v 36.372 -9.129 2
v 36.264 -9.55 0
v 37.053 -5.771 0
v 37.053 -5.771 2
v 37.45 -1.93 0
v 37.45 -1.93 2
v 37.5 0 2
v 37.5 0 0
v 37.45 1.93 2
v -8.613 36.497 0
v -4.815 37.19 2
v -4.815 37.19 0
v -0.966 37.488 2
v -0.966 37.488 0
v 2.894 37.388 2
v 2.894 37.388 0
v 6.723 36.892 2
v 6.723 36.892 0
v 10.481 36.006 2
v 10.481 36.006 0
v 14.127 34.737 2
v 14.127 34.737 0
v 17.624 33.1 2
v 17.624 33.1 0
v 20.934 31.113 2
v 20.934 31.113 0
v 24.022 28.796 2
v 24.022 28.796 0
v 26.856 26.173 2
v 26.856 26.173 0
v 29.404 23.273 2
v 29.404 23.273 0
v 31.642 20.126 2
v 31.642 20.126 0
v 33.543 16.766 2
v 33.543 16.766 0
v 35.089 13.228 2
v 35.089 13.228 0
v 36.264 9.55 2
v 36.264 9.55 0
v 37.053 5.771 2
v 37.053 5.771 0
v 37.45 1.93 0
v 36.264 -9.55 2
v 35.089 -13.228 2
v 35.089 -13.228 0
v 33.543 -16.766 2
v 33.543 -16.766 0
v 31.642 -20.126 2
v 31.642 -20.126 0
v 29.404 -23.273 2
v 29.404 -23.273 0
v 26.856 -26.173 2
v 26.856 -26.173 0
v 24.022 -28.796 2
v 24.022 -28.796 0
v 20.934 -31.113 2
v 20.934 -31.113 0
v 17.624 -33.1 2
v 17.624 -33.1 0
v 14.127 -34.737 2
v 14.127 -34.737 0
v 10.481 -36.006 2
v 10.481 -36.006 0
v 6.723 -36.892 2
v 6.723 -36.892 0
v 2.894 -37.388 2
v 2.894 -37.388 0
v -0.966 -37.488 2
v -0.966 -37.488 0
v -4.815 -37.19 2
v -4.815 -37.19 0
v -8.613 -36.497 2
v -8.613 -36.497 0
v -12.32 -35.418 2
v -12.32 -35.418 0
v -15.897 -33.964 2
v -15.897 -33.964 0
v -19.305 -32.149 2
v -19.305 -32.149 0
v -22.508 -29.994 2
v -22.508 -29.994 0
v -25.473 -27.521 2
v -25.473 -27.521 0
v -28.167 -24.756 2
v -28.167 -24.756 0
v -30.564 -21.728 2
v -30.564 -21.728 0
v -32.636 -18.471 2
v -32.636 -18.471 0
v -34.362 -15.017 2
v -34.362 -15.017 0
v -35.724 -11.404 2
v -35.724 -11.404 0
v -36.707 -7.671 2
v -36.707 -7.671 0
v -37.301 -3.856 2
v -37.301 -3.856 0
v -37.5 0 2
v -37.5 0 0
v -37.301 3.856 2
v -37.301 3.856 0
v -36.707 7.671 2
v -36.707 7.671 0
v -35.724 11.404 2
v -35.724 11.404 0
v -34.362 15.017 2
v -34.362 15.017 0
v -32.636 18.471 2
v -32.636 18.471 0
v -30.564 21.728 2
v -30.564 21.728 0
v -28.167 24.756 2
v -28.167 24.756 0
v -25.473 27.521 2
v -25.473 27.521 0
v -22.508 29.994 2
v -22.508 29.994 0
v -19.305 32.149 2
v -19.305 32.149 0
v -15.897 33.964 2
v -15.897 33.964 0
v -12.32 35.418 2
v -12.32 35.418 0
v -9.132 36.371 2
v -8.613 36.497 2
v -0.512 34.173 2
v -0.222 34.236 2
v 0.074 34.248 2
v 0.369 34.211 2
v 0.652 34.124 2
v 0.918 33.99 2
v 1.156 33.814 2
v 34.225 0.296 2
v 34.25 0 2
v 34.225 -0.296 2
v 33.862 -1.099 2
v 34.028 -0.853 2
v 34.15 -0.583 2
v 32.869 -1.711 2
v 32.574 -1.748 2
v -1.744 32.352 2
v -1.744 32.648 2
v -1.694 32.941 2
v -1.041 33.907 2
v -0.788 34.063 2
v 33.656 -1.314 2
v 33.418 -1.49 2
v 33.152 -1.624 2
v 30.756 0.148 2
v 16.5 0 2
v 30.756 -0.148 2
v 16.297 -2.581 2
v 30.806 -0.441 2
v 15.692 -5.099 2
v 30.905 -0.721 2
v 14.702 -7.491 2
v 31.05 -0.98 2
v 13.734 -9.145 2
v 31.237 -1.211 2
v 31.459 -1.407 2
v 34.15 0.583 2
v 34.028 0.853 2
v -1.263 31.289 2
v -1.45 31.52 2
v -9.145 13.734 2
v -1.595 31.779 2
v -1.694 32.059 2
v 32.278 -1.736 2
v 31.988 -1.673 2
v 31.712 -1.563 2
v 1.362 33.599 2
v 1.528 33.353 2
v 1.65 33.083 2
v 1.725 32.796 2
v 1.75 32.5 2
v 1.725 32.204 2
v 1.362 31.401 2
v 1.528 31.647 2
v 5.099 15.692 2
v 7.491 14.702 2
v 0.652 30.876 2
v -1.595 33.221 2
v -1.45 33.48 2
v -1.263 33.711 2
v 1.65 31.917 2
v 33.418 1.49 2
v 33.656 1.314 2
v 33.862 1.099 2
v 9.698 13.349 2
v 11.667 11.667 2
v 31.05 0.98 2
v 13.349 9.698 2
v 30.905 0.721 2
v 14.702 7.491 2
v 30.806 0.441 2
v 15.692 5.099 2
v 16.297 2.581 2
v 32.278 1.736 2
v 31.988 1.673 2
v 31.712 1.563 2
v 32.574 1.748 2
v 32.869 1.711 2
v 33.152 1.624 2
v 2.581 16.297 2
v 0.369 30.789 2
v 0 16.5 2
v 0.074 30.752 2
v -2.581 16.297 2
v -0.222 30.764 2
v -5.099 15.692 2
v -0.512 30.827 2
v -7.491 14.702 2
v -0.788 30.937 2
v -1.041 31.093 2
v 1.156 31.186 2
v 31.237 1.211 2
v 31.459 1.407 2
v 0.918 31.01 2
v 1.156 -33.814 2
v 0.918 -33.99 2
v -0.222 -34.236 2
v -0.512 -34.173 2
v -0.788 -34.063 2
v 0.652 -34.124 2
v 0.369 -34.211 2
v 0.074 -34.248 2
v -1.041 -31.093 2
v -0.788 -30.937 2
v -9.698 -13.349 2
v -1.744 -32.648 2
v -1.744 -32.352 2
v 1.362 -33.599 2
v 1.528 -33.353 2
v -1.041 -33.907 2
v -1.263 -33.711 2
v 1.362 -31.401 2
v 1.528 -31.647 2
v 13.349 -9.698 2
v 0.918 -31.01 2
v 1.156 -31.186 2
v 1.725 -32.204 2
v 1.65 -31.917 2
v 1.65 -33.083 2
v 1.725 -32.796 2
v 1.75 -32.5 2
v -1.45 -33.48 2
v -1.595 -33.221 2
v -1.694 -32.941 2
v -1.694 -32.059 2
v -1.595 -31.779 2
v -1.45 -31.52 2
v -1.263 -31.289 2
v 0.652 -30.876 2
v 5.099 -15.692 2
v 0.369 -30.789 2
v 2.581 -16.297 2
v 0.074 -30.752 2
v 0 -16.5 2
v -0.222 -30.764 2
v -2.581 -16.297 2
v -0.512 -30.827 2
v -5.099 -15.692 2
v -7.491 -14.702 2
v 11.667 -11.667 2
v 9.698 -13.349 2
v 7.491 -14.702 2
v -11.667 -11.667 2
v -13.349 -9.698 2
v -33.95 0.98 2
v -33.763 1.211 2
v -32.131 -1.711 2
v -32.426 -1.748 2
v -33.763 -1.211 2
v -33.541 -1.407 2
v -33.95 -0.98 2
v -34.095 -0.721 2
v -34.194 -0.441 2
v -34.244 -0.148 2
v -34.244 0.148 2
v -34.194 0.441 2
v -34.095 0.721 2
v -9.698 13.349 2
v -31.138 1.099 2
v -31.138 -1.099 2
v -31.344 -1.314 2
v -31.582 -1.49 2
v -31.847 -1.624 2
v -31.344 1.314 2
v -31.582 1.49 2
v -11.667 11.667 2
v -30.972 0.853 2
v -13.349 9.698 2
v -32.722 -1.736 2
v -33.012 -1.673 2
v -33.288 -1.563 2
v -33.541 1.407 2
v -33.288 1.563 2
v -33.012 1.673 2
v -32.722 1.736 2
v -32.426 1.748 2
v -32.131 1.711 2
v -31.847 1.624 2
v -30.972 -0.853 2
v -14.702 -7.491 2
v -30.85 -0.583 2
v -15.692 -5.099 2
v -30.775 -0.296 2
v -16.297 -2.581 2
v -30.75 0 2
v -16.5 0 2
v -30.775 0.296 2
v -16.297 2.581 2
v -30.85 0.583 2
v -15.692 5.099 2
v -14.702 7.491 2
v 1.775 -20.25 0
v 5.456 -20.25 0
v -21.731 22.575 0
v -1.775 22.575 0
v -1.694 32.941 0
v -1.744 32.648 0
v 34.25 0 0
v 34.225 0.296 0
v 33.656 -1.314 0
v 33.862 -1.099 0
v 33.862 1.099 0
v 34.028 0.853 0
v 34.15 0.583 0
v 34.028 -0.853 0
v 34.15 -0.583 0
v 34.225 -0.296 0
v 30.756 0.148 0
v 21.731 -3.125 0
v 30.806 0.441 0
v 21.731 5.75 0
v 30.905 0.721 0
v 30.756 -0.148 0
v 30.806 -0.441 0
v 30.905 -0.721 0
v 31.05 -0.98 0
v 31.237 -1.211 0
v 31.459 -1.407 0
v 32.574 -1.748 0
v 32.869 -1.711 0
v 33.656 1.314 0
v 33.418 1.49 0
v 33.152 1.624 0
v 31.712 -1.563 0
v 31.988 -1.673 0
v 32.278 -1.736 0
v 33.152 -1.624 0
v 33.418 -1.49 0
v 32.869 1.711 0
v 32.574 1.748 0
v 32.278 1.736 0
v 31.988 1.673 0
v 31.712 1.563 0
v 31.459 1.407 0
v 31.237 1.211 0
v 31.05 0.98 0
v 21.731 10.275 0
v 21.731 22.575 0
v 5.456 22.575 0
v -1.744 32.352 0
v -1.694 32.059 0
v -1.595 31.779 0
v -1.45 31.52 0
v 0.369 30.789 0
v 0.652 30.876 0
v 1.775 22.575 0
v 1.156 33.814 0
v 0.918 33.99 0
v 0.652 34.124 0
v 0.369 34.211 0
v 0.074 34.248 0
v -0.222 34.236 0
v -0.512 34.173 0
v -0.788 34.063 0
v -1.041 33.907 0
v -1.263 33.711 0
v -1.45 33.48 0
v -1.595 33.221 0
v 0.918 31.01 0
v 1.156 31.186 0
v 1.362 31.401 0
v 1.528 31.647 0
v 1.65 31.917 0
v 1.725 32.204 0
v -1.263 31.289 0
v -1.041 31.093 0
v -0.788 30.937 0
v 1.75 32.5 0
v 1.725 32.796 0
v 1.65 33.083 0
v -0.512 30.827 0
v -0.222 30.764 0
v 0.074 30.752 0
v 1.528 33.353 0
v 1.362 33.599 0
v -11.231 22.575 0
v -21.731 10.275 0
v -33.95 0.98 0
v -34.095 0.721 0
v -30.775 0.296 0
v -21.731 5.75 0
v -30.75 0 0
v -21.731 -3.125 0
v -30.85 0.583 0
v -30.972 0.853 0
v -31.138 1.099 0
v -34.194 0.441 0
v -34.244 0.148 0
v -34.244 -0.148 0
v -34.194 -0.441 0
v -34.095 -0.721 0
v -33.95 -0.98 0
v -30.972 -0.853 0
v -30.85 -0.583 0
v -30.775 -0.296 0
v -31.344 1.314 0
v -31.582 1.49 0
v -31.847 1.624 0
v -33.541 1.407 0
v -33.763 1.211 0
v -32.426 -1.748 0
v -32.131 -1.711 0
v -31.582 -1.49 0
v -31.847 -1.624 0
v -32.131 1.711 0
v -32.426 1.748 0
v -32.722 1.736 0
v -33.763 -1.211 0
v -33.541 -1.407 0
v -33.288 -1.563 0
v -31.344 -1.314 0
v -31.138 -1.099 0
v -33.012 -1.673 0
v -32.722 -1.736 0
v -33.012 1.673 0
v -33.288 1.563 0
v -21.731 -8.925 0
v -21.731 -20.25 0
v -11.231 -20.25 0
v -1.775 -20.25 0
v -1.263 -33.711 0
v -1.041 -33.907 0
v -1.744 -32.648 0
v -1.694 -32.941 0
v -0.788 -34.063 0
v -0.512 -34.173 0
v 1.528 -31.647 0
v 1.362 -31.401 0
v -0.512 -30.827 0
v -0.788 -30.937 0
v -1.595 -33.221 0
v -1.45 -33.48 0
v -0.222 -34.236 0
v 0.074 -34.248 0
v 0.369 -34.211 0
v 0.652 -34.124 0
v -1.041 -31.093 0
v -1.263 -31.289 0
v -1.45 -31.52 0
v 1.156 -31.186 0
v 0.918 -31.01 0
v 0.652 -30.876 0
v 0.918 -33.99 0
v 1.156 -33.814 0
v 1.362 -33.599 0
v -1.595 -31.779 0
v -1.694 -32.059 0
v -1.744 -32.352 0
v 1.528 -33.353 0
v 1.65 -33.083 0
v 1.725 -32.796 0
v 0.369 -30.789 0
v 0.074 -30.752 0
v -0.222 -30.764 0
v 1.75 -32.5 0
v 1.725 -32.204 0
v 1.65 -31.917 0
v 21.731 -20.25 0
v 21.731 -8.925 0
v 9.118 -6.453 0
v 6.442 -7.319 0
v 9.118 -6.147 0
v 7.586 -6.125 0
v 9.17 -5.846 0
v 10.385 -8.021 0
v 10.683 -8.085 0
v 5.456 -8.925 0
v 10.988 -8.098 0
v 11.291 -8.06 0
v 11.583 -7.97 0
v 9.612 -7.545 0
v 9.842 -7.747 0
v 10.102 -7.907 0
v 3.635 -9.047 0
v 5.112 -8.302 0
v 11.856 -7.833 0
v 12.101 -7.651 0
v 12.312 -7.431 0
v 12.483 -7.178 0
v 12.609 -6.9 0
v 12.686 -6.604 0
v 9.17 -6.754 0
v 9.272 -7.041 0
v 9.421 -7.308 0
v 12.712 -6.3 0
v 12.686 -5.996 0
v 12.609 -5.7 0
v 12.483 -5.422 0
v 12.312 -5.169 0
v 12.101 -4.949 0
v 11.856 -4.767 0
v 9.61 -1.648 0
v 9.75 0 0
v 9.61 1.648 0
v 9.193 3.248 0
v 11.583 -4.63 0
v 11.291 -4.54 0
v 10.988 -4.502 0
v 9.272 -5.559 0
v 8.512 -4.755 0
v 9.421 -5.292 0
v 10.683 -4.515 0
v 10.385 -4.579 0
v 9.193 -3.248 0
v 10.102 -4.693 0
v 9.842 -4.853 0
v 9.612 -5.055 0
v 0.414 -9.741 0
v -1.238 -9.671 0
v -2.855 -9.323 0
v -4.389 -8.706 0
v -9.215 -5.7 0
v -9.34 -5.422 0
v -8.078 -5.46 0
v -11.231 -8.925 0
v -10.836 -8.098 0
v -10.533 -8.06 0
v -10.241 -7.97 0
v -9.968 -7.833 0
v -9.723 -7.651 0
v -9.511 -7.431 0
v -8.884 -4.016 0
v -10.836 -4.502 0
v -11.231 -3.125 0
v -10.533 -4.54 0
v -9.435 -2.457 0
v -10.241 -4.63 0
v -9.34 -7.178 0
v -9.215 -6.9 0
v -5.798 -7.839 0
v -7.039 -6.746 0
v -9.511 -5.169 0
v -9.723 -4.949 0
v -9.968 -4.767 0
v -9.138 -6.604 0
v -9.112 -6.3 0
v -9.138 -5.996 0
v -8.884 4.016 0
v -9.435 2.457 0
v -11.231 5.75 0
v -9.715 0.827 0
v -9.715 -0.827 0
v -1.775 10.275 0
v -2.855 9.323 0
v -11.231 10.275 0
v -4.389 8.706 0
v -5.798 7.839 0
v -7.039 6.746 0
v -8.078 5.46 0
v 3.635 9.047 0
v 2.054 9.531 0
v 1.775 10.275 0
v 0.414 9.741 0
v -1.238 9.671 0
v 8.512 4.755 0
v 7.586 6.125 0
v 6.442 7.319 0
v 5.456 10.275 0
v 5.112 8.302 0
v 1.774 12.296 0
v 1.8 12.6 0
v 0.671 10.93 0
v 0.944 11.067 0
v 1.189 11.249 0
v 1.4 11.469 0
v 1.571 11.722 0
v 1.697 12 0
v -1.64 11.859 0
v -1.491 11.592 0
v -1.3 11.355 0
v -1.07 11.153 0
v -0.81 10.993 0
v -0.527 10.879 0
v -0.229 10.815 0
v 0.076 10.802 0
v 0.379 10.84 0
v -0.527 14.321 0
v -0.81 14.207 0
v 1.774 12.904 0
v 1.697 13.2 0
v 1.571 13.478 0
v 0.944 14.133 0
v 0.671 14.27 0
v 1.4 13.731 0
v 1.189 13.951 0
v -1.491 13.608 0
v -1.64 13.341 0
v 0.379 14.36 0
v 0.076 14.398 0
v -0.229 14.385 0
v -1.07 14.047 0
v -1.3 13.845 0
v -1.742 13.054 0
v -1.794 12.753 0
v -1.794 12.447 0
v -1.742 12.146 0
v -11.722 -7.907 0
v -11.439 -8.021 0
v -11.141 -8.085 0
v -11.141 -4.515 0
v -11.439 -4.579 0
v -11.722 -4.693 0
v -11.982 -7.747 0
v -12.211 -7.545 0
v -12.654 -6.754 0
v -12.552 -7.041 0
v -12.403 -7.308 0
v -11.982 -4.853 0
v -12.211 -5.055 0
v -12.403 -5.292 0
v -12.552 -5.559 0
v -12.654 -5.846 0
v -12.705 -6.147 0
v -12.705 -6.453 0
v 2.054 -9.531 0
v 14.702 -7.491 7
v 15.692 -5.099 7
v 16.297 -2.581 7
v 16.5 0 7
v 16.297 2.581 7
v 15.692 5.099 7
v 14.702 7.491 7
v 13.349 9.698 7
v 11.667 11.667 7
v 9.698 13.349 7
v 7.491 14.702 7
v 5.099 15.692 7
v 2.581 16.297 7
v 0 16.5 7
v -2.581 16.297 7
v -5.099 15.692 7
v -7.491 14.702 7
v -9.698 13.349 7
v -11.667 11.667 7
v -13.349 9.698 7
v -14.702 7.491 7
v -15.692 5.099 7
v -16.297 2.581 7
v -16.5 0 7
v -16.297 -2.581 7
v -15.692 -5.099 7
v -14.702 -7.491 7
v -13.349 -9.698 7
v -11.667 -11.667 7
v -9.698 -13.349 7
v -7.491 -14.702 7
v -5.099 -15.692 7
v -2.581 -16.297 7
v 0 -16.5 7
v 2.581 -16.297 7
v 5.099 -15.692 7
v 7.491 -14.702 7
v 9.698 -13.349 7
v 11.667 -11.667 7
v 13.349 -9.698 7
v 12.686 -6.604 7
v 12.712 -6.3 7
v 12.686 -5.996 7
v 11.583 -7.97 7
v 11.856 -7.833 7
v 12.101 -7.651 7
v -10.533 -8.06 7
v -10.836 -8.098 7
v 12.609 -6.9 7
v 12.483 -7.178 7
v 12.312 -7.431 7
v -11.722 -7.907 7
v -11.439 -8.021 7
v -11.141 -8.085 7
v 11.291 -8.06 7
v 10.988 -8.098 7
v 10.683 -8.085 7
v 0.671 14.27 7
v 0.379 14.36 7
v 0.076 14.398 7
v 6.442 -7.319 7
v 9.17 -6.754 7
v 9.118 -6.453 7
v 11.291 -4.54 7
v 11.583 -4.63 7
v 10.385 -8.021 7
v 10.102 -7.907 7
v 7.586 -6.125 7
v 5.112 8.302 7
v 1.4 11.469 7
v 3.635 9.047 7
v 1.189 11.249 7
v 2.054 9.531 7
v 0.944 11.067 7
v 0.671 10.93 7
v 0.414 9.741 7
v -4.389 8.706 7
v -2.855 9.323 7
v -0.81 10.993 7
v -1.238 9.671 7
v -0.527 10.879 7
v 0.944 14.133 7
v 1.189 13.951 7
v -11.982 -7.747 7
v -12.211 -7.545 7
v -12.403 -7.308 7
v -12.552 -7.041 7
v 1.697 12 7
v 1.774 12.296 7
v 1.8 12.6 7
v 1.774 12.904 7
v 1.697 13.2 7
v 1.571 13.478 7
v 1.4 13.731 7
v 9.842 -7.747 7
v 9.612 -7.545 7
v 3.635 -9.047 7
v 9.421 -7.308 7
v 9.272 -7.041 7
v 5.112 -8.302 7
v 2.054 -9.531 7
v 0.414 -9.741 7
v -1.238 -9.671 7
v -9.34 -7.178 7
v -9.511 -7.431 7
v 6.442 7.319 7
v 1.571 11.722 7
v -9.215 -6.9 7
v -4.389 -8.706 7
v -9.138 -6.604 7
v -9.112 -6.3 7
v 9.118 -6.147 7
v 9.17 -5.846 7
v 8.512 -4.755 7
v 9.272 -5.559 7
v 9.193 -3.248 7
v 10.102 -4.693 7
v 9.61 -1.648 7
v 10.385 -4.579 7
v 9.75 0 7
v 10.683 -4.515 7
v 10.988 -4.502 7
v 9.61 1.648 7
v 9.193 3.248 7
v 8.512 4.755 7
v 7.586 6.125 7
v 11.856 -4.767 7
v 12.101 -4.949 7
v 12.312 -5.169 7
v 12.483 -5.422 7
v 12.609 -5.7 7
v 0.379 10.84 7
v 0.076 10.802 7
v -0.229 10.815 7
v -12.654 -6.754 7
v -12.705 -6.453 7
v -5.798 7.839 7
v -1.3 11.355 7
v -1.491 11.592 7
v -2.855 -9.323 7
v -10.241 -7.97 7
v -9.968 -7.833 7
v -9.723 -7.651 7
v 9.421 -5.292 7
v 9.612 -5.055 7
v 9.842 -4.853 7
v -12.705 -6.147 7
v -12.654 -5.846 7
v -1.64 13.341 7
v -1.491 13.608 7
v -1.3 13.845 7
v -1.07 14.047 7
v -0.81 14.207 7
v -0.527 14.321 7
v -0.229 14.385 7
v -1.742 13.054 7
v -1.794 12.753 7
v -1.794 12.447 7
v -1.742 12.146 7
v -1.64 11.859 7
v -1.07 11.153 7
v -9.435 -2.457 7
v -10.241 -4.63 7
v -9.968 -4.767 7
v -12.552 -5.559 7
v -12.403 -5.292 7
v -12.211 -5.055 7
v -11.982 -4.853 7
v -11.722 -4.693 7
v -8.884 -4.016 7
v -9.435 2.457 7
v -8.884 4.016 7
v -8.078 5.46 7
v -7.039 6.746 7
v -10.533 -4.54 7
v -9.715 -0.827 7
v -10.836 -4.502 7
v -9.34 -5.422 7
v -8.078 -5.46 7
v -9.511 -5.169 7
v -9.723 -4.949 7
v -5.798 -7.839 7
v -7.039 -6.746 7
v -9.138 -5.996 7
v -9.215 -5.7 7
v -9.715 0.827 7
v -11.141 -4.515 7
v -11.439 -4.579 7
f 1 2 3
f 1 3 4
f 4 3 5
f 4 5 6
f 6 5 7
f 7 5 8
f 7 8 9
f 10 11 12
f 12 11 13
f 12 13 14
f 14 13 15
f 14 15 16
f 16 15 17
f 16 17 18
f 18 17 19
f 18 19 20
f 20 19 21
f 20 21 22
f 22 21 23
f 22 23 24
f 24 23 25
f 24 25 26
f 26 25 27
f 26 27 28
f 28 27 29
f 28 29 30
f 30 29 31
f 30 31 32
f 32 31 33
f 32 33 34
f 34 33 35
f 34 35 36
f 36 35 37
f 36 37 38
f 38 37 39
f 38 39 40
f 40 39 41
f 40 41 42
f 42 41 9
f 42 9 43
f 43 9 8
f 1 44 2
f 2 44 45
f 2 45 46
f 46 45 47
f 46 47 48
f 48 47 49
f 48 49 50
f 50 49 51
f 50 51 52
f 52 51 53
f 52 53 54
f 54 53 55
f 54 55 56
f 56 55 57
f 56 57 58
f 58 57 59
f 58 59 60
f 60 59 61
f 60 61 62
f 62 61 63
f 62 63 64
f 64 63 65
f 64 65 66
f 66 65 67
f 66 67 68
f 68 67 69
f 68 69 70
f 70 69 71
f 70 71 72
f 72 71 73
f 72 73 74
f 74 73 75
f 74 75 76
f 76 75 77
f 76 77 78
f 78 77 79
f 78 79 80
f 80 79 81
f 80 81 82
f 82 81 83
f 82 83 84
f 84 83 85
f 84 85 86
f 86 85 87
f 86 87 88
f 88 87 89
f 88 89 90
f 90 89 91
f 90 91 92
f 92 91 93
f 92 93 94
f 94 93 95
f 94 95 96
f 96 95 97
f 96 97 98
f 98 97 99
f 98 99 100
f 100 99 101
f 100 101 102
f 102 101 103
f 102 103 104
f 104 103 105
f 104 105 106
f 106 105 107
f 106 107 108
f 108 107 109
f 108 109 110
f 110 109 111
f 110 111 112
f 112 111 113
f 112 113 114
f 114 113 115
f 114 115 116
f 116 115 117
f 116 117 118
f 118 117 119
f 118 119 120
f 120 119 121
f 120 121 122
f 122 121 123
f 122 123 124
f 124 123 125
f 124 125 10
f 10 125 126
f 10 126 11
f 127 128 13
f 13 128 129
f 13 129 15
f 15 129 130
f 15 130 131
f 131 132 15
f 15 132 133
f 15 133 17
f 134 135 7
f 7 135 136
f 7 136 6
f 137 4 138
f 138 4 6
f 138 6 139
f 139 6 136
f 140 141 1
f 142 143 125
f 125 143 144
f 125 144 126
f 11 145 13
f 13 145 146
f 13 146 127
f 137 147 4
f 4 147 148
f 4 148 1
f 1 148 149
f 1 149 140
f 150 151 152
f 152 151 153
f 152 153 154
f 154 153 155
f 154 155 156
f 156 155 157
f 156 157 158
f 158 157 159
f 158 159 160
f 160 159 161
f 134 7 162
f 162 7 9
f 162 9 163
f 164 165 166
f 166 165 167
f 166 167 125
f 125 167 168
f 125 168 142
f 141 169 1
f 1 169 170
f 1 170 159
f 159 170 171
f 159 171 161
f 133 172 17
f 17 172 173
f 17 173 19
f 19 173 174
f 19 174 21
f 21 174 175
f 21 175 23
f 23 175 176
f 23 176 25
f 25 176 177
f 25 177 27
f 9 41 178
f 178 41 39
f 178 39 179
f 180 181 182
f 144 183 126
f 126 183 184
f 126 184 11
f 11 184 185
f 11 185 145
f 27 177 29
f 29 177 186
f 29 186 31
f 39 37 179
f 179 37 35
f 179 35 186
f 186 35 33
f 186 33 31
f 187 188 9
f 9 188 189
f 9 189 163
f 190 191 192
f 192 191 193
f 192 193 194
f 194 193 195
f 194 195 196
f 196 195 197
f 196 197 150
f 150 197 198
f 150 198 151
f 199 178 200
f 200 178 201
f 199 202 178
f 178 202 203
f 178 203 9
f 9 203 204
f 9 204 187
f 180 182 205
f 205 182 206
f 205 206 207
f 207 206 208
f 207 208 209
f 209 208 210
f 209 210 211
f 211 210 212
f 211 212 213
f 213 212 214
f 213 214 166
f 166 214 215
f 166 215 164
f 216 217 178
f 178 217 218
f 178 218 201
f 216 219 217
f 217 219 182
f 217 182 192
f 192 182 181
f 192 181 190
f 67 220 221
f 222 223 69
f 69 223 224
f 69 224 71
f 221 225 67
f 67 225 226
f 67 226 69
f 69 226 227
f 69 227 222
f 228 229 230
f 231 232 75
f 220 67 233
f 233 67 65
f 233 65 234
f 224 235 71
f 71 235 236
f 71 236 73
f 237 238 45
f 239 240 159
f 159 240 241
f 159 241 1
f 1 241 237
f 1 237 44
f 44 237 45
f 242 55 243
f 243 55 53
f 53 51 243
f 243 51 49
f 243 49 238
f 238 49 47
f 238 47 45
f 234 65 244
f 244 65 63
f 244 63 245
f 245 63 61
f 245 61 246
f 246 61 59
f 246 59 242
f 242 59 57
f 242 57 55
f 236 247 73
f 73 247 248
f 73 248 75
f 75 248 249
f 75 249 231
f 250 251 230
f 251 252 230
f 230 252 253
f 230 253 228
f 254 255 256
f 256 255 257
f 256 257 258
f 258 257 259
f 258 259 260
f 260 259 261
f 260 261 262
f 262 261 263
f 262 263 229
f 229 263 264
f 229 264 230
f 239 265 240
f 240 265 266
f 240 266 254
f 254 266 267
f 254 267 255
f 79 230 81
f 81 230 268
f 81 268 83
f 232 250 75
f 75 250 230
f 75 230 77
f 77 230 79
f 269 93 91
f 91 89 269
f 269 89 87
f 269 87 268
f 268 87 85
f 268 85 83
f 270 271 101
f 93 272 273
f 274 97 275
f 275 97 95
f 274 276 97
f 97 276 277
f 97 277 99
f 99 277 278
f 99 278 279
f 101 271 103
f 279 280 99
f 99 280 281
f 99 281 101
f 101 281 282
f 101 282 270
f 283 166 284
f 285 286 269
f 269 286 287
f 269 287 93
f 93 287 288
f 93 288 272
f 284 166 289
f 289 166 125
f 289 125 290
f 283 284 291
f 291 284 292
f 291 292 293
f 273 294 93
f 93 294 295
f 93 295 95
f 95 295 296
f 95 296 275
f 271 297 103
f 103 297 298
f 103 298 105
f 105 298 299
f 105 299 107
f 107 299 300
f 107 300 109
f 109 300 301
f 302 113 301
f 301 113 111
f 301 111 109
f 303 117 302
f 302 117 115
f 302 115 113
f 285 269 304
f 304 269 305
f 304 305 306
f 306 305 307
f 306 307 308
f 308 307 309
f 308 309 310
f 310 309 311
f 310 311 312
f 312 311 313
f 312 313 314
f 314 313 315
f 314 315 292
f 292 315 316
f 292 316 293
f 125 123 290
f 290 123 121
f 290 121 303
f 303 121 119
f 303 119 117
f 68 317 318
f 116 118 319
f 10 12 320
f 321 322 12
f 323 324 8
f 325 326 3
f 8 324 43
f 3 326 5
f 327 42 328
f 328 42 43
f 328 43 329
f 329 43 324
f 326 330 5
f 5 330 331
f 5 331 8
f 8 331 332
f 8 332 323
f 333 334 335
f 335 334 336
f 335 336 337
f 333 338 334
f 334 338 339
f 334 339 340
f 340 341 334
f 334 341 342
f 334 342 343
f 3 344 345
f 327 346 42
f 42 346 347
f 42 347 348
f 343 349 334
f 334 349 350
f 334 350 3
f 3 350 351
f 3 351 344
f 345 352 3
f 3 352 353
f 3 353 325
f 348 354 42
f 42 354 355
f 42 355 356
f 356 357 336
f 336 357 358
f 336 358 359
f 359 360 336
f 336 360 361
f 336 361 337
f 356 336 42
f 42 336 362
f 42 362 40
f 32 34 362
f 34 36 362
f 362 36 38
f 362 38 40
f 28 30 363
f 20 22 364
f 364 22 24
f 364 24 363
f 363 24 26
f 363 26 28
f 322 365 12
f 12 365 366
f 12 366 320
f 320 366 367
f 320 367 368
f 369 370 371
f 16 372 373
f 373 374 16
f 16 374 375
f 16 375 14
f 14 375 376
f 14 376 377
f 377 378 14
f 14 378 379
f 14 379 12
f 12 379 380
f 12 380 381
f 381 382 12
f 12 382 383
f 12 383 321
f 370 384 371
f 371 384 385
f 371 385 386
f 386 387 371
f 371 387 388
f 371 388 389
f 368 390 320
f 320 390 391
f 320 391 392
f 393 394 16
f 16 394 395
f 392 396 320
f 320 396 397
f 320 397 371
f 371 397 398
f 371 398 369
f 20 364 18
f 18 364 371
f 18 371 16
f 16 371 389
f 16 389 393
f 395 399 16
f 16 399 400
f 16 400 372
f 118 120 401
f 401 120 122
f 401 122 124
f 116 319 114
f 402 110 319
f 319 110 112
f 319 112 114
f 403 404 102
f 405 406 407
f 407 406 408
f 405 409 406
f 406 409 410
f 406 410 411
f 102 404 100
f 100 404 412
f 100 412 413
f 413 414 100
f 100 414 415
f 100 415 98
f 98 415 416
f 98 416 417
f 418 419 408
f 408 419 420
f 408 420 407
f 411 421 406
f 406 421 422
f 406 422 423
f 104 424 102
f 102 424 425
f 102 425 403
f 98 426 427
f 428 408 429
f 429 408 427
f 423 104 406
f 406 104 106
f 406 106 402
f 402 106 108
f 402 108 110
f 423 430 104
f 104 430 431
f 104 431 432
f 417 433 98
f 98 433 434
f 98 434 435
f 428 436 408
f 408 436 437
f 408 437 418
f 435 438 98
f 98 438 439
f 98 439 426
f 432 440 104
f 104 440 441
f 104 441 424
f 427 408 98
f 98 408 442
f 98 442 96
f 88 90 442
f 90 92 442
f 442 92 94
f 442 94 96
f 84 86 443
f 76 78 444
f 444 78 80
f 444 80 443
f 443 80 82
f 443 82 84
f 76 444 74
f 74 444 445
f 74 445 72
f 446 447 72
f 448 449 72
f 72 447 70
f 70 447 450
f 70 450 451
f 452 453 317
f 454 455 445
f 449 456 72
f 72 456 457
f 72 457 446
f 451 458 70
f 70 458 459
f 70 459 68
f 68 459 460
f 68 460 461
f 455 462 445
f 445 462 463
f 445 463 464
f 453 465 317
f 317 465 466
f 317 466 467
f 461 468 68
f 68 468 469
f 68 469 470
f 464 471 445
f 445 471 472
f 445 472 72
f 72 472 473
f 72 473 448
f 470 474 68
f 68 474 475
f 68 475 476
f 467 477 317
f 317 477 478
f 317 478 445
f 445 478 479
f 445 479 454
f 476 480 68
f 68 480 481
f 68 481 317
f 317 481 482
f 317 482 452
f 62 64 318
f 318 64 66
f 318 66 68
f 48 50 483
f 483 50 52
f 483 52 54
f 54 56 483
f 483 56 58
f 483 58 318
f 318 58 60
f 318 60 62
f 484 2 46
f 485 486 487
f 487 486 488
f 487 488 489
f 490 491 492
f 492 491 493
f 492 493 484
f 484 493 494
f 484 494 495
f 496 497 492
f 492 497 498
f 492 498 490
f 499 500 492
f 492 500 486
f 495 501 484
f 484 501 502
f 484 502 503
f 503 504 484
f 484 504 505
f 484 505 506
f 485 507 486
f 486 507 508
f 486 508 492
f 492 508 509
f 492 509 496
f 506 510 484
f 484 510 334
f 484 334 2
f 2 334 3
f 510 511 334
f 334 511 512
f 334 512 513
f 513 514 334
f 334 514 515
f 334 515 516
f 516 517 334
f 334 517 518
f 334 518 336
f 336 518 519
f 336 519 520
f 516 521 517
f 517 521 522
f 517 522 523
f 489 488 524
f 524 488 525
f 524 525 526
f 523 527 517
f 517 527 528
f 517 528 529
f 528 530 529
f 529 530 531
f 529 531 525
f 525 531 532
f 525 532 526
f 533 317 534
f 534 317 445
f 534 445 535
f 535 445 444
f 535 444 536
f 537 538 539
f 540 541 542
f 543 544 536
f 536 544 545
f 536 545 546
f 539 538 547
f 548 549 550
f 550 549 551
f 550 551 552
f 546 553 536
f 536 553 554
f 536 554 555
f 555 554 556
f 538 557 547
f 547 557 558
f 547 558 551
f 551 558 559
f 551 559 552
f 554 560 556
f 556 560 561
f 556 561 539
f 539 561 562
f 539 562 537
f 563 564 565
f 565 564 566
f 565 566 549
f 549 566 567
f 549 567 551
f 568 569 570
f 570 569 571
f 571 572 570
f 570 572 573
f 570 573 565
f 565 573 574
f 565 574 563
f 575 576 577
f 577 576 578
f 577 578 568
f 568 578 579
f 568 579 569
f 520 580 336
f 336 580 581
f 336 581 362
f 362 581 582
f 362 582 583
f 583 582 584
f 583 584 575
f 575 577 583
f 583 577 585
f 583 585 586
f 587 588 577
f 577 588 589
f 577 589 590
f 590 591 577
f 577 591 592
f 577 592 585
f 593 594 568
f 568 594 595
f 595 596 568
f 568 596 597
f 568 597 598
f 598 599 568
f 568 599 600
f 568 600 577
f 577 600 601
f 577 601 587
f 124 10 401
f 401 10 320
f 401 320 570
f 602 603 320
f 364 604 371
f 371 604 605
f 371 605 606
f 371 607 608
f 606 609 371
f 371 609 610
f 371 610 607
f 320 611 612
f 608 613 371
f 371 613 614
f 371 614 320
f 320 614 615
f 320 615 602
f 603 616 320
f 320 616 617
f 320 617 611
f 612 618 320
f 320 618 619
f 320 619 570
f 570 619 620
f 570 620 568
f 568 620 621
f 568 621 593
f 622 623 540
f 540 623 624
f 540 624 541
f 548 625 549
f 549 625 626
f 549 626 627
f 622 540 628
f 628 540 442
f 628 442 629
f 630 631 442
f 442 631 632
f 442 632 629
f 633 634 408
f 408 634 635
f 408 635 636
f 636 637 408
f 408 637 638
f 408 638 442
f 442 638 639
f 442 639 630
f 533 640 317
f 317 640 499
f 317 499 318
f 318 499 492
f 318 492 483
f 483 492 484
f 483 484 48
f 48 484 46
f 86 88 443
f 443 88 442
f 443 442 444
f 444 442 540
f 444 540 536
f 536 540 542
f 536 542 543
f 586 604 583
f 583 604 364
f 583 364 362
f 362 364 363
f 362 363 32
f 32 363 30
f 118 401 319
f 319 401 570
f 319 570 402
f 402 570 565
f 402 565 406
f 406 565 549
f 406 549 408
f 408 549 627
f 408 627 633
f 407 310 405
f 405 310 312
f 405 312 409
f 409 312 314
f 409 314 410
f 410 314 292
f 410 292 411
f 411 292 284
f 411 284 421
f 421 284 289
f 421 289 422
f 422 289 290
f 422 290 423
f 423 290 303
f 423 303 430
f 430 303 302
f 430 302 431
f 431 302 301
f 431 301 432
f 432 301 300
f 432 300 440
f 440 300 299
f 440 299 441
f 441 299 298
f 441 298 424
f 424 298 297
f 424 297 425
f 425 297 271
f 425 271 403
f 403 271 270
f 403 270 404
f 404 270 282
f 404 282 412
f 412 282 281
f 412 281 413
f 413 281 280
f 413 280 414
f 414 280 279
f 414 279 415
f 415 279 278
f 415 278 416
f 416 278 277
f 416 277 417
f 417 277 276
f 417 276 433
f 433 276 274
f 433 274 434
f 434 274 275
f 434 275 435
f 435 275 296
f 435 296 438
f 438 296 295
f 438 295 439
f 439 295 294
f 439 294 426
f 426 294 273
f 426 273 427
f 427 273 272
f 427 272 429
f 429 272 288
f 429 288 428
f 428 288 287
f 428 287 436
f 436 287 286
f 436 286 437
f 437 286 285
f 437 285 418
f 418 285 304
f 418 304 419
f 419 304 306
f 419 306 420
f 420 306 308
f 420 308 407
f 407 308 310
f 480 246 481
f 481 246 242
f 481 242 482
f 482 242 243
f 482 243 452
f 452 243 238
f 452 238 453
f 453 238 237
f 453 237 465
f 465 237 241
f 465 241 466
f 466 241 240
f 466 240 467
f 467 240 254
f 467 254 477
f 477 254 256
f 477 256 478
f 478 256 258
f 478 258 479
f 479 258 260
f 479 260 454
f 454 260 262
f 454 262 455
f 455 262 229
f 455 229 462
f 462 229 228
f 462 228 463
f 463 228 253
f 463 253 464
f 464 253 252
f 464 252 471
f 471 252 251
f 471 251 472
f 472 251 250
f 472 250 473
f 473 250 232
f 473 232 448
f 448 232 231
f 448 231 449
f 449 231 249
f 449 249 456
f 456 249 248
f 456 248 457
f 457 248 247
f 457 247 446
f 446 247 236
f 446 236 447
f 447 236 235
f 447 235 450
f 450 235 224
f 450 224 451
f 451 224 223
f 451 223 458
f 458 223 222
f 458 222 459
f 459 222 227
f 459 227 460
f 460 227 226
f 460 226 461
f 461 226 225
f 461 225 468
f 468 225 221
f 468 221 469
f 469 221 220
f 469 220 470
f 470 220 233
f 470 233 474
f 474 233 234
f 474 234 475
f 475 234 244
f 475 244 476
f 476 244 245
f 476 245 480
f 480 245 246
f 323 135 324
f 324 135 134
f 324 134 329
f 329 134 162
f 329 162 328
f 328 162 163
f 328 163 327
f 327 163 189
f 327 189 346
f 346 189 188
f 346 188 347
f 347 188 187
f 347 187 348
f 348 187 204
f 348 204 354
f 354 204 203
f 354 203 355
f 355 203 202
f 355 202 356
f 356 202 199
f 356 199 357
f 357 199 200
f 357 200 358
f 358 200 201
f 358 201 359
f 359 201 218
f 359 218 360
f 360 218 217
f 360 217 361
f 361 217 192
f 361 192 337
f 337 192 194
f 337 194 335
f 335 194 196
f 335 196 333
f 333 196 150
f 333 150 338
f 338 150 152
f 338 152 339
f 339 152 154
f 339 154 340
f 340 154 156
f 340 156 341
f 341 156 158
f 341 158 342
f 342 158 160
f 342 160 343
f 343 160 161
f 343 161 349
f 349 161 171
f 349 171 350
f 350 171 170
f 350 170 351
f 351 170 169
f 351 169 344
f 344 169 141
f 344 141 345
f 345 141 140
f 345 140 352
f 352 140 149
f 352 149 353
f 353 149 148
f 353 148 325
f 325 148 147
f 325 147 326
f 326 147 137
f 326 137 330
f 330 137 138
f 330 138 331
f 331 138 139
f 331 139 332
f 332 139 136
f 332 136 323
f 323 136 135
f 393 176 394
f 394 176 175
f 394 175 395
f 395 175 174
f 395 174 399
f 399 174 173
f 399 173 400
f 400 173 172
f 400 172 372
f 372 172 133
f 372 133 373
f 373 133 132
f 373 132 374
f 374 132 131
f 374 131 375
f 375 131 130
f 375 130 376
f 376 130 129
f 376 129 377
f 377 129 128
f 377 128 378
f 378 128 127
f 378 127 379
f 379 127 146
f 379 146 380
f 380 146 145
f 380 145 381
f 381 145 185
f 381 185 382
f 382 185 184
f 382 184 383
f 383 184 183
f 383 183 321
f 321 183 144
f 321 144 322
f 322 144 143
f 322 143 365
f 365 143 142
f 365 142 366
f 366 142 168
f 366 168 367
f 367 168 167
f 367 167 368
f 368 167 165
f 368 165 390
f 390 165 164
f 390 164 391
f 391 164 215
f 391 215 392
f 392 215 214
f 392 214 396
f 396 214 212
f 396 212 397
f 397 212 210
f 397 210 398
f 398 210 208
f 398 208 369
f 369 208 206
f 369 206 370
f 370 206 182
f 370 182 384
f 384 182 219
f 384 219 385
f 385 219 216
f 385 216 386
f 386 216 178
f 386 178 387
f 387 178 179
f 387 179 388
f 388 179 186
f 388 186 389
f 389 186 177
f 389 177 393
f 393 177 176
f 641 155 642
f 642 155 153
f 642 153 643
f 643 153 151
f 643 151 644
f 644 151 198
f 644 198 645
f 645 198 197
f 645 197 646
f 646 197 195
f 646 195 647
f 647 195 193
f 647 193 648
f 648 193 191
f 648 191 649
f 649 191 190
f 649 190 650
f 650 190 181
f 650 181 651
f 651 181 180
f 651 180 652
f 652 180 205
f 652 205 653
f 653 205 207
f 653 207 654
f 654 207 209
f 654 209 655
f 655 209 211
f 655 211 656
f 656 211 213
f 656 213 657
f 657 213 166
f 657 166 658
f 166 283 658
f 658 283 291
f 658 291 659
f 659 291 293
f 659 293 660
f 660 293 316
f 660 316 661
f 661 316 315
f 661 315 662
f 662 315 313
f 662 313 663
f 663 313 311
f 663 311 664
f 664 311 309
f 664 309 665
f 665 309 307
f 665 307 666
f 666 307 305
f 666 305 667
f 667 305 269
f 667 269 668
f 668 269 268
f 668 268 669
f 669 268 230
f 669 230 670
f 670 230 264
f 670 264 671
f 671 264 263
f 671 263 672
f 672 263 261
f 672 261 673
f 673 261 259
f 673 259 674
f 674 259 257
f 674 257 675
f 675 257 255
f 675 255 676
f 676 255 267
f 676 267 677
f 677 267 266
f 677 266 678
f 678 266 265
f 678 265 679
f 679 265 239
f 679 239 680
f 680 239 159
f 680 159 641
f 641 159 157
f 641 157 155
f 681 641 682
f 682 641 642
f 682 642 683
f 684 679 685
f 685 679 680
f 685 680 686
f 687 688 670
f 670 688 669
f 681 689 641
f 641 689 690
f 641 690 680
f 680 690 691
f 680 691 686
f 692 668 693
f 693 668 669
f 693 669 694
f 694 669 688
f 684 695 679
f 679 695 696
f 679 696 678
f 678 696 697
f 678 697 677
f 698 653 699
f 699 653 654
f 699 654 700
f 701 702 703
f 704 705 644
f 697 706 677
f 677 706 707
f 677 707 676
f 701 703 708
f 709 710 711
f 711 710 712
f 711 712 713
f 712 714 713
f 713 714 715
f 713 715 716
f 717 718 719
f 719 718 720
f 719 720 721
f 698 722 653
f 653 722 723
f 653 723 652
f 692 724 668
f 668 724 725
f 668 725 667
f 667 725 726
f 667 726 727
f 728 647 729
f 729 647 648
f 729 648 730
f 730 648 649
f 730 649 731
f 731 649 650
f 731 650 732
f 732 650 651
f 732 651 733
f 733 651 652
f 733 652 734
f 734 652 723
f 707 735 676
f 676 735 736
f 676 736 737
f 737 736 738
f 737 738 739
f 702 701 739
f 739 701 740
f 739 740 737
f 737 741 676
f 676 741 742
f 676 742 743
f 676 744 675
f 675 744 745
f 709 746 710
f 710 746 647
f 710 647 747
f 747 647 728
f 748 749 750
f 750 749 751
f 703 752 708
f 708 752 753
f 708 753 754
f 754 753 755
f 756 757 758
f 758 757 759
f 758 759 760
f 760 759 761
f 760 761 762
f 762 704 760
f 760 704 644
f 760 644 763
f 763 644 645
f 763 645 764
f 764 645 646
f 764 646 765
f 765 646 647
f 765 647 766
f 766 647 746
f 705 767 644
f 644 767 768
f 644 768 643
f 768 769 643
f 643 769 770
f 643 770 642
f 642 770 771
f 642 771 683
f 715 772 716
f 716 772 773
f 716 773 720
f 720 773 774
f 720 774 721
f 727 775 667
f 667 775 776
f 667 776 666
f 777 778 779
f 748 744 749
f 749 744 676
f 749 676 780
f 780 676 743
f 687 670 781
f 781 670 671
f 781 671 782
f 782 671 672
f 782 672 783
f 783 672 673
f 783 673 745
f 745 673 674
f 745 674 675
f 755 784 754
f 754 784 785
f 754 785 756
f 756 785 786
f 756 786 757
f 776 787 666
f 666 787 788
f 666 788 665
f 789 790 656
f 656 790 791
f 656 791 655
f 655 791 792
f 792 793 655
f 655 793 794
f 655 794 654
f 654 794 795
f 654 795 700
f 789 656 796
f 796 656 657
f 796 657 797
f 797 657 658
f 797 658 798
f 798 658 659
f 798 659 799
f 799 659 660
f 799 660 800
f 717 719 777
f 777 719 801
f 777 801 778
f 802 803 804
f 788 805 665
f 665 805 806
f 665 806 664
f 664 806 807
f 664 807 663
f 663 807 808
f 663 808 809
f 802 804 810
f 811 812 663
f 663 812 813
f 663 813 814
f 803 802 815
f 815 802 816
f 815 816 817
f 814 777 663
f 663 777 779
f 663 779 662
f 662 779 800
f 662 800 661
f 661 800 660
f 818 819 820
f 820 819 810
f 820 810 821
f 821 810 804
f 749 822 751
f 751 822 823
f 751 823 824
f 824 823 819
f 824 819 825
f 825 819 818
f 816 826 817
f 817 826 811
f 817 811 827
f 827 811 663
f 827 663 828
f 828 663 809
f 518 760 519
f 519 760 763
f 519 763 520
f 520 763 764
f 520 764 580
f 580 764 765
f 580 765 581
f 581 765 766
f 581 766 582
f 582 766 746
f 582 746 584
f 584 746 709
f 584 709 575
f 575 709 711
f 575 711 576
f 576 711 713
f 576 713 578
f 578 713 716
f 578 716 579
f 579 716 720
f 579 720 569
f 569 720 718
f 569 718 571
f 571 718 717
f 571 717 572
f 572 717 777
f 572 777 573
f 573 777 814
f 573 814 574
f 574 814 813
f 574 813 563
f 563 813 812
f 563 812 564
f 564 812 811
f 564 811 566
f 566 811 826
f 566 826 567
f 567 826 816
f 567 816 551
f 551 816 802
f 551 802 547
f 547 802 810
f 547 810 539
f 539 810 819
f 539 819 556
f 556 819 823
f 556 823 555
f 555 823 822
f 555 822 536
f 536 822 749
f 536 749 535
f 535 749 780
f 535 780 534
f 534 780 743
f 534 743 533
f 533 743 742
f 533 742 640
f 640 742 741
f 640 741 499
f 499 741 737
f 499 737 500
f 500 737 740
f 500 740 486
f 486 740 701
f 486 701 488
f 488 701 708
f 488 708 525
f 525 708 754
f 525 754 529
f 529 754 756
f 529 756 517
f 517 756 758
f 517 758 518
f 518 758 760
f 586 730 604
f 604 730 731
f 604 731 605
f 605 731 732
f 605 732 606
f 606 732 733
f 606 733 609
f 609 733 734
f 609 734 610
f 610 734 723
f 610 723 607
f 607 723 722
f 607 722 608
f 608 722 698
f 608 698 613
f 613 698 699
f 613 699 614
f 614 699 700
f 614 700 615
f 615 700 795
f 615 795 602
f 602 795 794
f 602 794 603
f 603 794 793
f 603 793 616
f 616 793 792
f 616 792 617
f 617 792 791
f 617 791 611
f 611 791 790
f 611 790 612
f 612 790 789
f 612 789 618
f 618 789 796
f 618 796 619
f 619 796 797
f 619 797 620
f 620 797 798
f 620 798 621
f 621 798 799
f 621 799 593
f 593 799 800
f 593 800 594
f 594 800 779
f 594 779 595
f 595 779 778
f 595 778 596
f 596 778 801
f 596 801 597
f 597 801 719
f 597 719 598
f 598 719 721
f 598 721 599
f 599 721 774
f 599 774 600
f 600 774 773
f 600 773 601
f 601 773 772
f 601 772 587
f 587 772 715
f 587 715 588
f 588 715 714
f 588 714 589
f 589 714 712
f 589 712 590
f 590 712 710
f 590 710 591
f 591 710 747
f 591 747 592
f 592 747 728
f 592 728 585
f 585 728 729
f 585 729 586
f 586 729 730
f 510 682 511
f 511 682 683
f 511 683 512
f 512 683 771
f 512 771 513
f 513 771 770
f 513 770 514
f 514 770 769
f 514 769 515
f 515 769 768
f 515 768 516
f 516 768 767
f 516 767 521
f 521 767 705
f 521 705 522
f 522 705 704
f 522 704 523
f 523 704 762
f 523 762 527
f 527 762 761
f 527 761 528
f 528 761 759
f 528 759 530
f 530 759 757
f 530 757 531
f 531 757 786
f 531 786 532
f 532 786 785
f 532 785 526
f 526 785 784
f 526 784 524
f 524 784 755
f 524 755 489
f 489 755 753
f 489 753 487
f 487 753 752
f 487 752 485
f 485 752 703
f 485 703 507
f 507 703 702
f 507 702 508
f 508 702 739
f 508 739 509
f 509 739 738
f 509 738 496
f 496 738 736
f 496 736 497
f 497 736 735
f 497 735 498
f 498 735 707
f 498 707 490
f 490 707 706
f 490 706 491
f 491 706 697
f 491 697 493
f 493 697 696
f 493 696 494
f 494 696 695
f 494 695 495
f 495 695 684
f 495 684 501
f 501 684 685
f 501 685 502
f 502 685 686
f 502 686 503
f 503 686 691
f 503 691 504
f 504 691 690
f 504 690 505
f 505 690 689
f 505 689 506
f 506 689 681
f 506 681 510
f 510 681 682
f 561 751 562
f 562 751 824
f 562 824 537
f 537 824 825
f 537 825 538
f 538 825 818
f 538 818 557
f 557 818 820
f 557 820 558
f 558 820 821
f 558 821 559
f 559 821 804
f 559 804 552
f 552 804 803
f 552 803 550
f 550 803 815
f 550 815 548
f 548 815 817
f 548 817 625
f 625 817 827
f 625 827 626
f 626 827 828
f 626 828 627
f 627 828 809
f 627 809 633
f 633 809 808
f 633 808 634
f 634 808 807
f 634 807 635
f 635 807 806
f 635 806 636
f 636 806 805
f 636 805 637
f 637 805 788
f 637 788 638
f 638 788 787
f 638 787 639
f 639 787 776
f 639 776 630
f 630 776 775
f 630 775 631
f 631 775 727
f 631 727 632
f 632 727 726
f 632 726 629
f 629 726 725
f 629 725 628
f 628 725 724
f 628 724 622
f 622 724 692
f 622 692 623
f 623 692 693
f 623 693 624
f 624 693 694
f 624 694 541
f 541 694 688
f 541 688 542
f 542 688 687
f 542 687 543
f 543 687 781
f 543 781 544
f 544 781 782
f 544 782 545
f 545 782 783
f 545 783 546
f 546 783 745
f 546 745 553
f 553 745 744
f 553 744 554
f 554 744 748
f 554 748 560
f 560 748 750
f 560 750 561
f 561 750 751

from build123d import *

# Parameters (mm, degrees)
SKETCH_1_R          = 37.5
EXTRUDE_1_DEPTH     = 2
SKETCH_2_R          = 1.75
CUT_EXTRUDE_1_DEPTH = 2
SKETCH_3_R          = 16.5
EXTRUDE_2_DEPTH     = 5
SKETCH_4_R          = 9.75
SKETCH_4_R_2        = 1.8
CUT_EXTRUDE_2_DEPTH = 7


with BuildPart() as part:
    # Эскиз1 → Бобышка-Вытянуть1 (new body)
    with BuildSketch(Plane.XY):
        Circle(SKETCH_1_R)
    extrude(amount=EXTRUDE_1_DEPTH)

    # Эскиз2 → Вырез-Вытянуть1 (cut)
    with BuildSketch(Plane.XY.offset(2)):
        with Locations((0, 32.5)):
            Circle(SKETCH_2_R)
        with Locations((32.5, 0)):
            Circle(SKETCH_2_R)
        with Locations((0, -32.5)):
            Circle(SKETCH_2_R)
        with Locations((-32.5, 0)):
            Circle(SKETCH_2_R)
    extrude(amount=-CUT_EXTRUDE_1_DEPTH, mode=Mode.SUBTRACT)

    # Эскиз3 → Бобышка-Вытянуть2 (add)
    with BuildSketch(Plane.XY.offset(2)):
        Circle(SKETCH_3_R)
    extrude(amount=EXTRUDE_2_DEPTH)

    # Эскиз4 → Вырез-Вытянуть2 (cut)
    with BuildSketch(Plane.XY.offset(7)):
        Circle(SKETCH_4_R)
        with Locations((0, 12.6)):
            Circle(SKETCH_4_R_2)
        with Locations((10.911920088, -6.3)):
            Circle(SKETCH_4_R_2)
        with Locations((-10.911920088, -6.3)):
            Circle(SKETCH_4_R_2)
    extrude(amount=-CUT_EXTRUDE_2_DEPTH, mode=Mode.SUBTRACT)


solid = part.part
